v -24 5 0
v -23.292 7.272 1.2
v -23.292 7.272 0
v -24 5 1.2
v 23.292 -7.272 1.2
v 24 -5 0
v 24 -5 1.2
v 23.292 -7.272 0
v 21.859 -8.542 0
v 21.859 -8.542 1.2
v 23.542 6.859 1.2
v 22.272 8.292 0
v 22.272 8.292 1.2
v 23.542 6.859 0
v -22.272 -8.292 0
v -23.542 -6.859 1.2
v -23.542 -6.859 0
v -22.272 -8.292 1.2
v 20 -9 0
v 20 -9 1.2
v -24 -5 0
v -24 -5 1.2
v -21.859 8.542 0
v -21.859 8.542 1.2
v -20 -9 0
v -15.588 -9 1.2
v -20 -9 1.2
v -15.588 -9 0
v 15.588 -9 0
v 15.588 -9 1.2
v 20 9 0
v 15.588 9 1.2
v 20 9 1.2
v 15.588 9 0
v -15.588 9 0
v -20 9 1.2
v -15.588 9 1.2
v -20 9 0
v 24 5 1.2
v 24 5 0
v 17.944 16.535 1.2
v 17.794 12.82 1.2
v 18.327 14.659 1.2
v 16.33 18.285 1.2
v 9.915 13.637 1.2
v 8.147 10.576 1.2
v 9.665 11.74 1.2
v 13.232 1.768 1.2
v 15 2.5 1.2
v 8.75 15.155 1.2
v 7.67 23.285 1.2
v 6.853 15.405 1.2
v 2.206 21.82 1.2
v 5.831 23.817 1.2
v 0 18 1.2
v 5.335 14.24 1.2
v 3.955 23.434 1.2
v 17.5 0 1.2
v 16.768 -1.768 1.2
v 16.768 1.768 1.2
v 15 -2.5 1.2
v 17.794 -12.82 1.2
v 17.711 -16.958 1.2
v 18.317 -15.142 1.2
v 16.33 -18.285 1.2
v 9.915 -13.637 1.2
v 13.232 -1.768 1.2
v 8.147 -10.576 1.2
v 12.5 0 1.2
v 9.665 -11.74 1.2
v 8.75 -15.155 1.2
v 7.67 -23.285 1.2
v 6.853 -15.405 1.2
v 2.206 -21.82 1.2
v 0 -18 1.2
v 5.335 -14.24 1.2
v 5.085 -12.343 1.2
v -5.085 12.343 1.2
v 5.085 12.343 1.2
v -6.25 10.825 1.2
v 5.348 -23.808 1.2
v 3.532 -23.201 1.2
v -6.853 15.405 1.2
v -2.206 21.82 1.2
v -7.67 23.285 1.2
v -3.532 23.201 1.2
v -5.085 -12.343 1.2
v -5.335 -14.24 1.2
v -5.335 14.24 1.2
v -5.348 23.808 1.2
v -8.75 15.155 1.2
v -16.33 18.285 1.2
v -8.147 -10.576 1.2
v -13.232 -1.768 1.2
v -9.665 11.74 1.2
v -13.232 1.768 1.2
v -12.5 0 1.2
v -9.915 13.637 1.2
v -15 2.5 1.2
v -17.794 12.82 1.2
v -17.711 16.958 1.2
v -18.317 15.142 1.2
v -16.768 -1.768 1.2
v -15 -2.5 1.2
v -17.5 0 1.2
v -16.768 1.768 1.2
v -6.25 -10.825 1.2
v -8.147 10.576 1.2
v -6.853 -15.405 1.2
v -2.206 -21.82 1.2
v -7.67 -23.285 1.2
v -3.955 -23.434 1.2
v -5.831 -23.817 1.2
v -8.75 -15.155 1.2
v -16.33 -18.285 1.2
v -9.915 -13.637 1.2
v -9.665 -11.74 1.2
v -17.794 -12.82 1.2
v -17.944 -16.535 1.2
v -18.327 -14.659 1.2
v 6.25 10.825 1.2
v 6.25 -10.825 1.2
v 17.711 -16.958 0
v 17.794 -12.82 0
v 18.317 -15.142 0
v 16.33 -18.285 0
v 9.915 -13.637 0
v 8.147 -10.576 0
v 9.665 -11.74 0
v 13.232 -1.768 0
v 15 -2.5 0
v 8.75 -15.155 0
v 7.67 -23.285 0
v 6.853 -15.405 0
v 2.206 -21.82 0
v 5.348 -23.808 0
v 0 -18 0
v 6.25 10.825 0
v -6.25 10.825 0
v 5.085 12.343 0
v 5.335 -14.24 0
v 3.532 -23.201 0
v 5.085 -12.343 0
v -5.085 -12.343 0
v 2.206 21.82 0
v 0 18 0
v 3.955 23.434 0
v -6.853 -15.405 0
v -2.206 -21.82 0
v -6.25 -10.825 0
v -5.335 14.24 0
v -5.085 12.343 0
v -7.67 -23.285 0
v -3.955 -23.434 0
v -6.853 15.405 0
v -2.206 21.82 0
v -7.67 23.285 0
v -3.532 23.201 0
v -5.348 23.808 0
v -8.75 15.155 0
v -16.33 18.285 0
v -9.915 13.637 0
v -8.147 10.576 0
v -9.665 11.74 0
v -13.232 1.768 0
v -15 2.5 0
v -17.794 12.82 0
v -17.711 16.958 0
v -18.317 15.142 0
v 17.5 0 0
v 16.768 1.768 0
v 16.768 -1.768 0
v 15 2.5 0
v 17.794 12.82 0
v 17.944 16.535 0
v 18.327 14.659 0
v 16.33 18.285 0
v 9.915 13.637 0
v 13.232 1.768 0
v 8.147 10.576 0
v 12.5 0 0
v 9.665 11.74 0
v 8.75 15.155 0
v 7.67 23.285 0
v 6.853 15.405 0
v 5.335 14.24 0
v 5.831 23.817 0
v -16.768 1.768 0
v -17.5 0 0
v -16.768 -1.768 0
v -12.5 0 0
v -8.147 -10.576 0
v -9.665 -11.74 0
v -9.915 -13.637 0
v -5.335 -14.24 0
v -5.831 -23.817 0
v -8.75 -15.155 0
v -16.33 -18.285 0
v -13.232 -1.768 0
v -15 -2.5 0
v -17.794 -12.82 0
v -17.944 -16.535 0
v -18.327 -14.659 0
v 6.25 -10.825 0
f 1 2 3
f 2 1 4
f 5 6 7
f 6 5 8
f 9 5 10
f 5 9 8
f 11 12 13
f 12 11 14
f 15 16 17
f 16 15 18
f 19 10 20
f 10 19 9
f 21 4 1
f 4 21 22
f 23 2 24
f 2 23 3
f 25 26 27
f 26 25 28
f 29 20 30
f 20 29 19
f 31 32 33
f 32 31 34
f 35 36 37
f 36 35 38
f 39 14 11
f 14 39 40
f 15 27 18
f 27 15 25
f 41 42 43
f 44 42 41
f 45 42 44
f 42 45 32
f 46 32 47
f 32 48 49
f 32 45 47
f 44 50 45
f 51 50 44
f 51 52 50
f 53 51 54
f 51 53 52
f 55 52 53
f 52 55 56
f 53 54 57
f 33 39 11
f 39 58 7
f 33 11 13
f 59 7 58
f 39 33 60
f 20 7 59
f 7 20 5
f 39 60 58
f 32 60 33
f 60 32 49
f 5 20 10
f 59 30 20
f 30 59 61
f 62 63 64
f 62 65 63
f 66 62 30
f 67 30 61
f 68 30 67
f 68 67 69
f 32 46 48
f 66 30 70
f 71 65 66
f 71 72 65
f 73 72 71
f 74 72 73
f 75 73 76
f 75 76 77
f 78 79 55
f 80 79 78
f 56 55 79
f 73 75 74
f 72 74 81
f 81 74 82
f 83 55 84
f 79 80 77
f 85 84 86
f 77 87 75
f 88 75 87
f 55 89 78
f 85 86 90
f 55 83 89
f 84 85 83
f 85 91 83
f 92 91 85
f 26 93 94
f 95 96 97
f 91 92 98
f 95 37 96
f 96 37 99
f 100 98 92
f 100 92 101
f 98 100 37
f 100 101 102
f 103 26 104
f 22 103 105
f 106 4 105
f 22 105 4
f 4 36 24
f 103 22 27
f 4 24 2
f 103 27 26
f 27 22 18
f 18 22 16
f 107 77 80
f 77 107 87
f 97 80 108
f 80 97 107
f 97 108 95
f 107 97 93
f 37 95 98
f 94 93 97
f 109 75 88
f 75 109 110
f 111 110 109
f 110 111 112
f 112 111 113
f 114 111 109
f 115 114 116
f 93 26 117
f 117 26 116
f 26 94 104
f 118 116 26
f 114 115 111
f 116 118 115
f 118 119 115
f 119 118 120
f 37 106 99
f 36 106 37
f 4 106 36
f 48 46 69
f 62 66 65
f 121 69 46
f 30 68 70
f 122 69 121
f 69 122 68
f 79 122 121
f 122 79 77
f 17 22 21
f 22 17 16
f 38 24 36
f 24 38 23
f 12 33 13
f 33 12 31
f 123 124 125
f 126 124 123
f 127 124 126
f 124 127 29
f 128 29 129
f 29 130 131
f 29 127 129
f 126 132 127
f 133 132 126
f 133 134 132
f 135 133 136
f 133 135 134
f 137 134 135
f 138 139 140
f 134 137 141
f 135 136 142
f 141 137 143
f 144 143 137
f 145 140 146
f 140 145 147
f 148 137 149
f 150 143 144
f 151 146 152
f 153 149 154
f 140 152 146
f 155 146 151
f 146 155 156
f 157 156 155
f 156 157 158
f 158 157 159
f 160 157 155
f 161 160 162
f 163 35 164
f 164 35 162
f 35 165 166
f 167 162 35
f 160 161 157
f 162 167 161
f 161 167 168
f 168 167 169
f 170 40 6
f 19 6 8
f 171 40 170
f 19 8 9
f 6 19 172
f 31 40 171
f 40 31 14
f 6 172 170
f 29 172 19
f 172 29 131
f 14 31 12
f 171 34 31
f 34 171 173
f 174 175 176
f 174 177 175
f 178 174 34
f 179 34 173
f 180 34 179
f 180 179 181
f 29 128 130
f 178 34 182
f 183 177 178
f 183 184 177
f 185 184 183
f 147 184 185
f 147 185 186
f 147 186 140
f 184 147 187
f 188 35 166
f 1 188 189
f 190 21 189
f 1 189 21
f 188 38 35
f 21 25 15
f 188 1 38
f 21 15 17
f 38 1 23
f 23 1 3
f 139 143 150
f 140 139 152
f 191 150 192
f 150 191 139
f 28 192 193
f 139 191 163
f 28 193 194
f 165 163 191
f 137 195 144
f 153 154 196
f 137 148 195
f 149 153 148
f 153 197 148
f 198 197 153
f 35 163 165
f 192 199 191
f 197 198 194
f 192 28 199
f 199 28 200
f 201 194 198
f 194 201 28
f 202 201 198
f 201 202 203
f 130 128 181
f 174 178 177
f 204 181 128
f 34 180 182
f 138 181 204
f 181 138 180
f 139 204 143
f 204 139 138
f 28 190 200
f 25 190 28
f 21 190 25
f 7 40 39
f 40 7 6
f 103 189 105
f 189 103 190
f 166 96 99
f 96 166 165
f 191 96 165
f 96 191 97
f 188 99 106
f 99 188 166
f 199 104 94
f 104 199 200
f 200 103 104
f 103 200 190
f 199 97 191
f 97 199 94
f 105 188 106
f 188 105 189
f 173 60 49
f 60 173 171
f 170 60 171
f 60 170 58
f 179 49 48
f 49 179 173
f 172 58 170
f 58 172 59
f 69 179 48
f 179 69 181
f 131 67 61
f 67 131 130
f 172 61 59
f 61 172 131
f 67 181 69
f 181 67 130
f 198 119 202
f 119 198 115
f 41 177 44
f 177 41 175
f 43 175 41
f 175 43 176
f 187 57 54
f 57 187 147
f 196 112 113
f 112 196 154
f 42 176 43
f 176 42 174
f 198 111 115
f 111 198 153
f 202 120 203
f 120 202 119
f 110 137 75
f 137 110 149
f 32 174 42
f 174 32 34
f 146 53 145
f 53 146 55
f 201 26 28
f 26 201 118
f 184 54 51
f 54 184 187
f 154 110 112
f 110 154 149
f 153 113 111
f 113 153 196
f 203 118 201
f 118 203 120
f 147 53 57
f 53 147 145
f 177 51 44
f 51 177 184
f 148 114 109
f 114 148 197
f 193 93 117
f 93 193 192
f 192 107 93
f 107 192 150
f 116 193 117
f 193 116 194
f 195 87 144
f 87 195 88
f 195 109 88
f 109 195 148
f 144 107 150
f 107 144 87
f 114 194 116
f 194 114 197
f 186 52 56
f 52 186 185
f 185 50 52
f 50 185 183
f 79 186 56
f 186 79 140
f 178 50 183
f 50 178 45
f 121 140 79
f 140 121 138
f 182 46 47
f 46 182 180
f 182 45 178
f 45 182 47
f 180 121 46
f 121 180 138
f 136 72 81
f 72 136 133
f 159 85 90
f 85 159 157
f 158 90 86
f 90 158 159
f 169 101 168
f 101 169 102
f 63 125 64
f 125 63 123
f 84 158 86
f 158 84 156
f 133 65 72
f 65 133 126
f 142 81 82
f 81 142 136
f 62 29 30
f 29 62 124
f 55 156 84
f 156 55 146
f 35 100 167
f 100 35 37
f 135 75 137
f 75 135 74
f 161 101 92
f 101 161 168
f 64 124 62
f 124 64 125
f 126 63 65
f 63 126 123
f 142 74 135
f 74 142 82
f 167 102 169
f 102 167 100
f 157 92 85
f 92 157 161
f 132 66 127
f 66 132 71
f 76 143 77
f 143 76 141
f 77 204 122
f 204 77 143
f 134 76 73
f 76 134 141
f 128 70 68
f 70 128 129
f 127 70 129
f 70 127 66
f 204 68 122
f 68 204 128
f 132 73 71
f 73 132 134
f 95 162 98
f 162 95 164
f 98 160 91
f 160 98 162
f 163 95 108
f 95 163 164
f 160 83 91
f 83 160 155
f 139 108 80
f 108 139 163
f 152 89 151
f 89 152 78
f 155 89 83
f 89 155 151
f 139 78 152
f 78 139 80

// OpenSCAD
// Parameters for the link plate
plate_length = 40; // Length of the plate
plate_width = 10;  // Width of the plate
plate_thickness = 1.2; // Thickness of the plate (reduced to match original model)
hole_diameter = 5; // Diameter of the holes
hole_spacing = 30; // Distance between the centers of the holes
curvature = 4; // Amount of curvature along the length (increased to match original model)

// Function to create a single link plate
module link_plate() {
    difference() {
        // Create the curved plate
        linear_extrude(height = plate_thickness) {
            offset(r = curvature) {
                square([plate_length, plate_width], center = true);
            }
        }
        // Create the holes
        translate([-hole_spacing / 2, 0, plate_thickness / 2])
            cylinder(r = hole_diameter / 2, h = plate_thickness, center = true);
        translate([hole_spacing / 2, 0, plate_thickness / 2])
            cylinder(r = hole_diameter / 2, h = plate_thickness, center = true);
    }
}

// Assemble the six link plates in a symmetrical arrangement
module flexible_coupling() {
    for (i = [0:5]) {
        rotate([0, 0, i * 60]) // Rotate each plate by 60 degrees
            translate([0, 0, 0]) // Keep all plates in the same vertical position
                link_plate();
    }
}

// Render the flexible coupling
flexible_coupling();
